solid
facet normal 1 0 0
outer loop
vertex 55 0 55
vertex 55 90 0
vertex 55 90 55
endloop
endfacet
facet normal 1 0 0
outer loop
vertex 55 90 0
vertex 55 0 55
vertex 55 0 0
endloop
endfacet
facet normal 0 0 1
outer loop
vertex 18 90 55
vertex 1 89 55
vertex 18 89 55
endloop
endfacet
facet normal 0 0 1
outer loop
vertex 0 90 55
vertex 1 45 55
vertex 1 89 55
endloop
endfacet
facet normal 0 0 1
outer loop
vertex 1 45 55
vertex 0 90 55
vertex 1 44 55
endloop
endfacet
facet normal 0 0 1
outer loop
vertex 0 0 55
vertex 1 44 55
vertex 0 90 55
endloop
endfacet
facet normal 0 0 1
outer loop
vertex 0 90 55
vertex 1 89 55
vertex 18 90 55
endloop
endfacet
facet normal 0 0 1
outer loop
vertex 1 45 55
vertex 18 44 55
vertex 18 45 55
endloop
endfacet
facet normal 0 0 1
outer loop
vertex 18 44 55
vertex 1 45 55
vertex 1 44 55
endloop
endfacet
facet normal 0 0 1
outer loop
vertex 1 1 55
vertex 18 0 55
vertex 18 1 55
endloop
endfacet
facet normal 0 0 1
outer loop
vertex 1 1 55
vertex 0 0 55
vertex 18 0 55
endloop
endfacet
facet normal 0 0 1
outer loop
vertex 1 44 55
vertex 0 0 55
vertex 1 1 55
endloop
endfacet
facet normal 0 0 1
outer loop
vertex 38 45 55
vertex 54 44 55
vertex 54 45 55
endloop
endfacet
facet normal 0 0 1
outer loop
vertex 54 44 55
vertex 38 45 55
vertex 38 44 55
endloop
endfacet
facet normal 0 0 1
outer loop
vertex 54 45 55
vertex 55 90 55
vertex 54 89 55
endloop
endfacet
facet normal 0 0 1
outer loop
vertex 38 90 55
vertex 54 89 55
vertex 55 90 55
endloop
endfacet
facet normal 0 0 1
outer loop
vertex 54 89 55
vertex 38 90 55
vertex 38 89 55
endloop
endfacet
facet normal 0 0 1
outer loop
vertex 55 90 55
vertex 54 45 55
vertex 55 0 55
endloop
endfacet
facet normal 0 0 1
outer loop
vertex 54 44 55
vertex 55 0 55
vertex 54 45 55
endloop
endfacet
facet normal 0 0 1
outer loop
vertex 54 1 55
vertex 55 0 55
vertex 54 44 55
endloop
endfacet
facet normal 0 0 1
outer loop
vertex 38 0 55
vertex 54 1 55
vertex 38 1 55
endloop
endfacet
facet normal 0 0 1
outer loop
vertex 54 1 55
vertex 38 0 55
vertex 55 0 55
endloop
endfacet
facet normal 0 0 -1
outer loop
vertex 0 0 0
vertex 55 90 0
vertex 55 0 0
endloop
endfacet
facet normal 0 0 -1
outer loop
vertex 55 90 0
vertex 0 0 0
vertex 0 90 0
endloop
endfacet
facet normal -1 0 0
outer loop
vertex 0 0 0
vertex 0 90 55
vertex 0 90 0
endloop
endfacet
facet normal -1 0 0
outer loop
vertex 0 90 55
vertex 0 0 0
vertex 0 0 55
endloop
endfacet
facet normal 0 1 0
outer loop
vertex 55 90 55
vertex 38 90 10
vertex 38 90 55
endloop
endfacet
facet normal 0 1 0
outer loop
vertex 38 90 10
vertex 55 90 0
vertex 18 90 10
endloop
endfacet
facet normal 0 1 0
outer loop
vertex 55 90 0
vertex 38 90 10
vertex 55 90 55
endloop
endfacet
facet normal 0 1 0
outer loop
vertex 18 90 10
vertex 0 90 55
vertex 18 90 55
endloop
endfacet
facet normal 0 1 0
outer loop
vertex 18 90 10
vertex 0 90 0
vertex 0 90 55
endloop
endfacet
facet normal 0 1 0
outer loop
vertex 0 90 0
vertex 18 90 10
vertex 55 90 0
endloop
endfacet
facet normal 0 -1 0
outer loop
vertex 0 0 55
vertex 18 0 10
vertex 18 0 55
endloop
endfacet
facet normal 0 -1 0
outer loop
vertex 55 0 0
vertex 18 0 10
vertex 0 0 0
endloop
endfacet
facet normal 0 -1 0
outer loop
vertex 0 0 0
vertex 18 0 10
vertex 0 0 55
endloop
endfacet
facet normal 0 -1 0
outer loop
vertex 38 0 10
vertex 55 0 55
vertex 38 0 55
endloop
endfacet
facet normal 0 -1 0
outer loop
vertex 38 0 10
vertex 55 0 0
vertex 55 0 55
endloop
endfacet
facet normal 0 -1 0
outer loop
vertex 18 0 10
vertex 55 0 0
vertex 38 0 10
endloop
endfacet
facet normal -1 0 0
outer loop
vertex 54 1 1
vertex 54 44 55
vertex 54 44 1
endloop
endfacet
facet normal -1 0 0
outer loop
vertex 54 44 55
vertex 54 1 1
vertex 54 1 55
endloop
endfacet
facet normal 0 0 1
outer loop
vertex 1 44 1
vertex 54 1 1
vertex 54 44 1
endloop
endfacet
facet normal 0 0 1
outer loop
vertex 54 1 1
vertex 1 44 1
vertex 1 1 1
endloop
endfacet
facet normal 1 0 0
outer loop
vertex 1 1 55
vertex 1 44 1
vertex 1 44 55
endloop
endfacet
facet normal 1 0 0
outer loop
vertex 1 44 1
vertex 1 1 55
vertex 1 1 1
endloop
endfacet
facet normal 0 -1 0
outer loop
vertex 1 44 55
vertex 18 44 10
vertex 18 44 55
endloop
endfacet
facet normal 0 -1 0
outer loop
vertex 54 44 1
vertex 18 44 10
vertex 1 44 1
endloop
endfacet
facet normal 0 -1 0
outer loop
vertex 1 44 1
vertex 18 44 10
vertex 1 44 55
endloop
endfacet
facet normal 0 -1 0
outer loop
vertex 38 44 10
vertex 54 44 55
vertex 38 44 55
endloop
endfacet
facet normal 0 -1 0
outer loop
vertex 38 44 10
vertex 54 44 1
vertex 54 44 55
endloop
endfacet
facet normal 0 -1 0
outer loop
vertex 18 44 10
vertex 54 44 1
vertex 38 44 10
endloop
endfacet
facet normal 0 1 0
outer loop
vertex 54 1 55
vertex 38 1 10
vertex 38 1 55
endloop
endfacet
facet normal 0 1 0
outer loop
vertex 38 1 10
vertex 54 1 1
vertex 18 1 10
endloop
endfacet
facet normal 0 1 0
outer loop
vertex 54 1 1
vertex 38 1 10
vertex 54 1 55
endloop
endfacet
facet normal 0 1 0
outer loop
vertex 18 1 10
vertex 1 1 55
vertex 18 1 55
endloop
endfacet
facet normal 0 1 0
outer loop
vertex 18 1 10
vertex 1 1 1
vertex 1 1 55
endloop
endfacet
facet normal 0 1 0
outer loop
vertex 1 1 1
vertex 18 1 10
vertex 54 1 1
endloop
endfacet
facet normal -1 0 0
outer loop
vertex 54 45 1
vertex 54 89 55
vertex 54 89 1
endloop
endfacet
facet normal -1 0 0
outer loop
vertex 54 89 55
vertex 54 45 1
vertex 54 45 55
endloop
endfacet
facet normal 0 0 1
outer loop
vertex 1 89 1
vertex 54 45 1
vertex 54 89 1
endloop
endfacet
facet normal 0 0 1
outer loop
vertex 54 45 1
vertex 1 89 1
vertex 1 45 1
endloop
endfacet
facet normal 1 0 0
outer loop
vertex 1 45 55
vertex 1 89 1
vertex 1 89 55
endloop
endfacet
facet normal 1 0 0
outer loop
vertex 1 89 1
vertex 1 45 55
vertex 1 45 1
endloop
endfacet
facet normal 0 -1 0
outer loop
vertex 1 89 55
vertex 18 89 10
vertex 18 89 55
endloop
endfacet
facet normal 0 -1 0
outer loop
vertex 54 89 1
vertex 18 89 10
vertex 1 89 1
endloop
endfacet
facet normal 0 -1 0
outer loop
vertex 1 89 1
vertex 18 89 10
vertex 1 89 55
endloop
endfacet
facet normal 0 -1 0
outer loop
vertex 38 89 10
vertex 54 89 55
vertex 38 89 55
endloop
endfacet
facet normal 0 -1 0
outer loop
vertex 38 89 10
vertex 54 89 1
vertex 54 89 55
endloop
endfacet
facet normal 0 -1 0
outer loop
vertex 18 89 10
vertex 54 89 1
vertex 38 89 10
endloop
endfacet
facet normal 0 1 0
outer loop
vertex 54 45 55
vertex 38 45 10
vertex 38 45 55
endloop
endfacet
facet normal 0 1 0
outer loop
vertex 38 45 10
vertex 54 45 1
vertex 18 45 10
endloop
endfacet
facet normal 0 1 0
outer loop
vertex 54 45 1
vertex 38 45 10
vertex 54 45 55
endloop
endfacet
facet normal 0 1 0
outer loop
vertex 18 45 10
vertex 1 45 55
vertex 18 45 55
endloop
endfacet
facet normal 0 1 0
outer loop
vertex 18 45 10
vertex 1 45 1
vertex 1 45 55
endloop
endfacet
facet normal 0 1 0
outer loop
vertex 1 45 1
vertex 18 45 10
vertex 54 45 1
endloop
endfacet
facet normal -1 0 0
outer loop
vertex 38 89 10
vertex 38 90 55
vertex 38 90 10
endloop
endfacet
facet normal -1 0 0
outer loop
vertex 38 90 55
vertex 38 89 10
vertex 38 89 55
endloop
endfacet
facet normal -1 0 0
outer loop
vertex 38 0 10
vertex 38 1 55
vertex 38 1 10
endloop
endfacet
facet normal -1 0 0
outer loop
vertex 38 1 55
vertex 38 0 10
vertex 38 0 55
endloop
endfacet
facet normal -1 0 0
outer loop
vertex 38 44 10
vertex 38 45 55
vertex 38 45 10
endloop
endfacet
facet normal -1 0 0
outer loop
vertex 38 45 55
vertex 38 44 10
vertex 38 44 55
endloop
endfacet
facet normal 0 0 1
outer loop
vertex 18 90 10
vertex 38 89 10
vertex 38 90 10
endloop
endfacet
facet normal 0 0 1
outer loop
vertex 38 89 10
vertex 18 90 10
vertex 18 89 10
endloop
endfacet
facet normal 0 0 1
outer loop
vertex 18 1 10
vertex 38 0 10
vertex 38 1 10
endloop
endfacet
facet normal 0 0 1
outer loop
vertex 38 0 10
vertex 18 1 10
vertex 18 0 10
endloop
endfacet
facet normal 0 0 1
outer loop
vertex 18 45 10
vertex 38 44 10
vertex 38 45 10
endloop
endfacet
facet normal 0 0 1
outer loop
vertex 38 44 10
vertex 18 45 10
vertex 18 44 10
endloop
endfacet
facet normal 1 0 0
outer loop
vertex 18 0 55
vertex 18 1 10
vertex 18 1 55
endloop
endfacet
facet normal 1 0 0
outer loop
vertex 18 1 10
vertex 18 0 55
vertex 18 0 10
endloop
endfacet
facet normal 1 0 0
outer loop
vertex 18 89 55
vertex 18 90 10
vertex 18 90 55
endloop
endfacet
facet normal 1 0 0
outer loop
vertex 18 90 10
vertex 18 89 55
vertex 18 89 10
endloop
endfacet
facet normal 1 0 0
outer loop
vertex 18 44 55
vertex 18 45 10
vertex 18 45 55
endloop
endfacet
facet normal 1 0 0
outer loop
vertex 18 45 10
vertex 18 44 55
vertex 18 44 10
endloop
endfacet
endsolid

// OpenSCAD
ww = 55;
dd = 90;
hh = 55;
wall=1;

difference() {
    cube([ww,dd,hh]);
    translate([wall,wall,wall]) cube([ww-2*wall, 45-2*wall, hh-wall]);
    translate([wall,45,wall]) cube([ww-2*wall, 46-2*wall, hh-wall]);
    translate([18,0,10]) cube([20,dd,hh]);
}
